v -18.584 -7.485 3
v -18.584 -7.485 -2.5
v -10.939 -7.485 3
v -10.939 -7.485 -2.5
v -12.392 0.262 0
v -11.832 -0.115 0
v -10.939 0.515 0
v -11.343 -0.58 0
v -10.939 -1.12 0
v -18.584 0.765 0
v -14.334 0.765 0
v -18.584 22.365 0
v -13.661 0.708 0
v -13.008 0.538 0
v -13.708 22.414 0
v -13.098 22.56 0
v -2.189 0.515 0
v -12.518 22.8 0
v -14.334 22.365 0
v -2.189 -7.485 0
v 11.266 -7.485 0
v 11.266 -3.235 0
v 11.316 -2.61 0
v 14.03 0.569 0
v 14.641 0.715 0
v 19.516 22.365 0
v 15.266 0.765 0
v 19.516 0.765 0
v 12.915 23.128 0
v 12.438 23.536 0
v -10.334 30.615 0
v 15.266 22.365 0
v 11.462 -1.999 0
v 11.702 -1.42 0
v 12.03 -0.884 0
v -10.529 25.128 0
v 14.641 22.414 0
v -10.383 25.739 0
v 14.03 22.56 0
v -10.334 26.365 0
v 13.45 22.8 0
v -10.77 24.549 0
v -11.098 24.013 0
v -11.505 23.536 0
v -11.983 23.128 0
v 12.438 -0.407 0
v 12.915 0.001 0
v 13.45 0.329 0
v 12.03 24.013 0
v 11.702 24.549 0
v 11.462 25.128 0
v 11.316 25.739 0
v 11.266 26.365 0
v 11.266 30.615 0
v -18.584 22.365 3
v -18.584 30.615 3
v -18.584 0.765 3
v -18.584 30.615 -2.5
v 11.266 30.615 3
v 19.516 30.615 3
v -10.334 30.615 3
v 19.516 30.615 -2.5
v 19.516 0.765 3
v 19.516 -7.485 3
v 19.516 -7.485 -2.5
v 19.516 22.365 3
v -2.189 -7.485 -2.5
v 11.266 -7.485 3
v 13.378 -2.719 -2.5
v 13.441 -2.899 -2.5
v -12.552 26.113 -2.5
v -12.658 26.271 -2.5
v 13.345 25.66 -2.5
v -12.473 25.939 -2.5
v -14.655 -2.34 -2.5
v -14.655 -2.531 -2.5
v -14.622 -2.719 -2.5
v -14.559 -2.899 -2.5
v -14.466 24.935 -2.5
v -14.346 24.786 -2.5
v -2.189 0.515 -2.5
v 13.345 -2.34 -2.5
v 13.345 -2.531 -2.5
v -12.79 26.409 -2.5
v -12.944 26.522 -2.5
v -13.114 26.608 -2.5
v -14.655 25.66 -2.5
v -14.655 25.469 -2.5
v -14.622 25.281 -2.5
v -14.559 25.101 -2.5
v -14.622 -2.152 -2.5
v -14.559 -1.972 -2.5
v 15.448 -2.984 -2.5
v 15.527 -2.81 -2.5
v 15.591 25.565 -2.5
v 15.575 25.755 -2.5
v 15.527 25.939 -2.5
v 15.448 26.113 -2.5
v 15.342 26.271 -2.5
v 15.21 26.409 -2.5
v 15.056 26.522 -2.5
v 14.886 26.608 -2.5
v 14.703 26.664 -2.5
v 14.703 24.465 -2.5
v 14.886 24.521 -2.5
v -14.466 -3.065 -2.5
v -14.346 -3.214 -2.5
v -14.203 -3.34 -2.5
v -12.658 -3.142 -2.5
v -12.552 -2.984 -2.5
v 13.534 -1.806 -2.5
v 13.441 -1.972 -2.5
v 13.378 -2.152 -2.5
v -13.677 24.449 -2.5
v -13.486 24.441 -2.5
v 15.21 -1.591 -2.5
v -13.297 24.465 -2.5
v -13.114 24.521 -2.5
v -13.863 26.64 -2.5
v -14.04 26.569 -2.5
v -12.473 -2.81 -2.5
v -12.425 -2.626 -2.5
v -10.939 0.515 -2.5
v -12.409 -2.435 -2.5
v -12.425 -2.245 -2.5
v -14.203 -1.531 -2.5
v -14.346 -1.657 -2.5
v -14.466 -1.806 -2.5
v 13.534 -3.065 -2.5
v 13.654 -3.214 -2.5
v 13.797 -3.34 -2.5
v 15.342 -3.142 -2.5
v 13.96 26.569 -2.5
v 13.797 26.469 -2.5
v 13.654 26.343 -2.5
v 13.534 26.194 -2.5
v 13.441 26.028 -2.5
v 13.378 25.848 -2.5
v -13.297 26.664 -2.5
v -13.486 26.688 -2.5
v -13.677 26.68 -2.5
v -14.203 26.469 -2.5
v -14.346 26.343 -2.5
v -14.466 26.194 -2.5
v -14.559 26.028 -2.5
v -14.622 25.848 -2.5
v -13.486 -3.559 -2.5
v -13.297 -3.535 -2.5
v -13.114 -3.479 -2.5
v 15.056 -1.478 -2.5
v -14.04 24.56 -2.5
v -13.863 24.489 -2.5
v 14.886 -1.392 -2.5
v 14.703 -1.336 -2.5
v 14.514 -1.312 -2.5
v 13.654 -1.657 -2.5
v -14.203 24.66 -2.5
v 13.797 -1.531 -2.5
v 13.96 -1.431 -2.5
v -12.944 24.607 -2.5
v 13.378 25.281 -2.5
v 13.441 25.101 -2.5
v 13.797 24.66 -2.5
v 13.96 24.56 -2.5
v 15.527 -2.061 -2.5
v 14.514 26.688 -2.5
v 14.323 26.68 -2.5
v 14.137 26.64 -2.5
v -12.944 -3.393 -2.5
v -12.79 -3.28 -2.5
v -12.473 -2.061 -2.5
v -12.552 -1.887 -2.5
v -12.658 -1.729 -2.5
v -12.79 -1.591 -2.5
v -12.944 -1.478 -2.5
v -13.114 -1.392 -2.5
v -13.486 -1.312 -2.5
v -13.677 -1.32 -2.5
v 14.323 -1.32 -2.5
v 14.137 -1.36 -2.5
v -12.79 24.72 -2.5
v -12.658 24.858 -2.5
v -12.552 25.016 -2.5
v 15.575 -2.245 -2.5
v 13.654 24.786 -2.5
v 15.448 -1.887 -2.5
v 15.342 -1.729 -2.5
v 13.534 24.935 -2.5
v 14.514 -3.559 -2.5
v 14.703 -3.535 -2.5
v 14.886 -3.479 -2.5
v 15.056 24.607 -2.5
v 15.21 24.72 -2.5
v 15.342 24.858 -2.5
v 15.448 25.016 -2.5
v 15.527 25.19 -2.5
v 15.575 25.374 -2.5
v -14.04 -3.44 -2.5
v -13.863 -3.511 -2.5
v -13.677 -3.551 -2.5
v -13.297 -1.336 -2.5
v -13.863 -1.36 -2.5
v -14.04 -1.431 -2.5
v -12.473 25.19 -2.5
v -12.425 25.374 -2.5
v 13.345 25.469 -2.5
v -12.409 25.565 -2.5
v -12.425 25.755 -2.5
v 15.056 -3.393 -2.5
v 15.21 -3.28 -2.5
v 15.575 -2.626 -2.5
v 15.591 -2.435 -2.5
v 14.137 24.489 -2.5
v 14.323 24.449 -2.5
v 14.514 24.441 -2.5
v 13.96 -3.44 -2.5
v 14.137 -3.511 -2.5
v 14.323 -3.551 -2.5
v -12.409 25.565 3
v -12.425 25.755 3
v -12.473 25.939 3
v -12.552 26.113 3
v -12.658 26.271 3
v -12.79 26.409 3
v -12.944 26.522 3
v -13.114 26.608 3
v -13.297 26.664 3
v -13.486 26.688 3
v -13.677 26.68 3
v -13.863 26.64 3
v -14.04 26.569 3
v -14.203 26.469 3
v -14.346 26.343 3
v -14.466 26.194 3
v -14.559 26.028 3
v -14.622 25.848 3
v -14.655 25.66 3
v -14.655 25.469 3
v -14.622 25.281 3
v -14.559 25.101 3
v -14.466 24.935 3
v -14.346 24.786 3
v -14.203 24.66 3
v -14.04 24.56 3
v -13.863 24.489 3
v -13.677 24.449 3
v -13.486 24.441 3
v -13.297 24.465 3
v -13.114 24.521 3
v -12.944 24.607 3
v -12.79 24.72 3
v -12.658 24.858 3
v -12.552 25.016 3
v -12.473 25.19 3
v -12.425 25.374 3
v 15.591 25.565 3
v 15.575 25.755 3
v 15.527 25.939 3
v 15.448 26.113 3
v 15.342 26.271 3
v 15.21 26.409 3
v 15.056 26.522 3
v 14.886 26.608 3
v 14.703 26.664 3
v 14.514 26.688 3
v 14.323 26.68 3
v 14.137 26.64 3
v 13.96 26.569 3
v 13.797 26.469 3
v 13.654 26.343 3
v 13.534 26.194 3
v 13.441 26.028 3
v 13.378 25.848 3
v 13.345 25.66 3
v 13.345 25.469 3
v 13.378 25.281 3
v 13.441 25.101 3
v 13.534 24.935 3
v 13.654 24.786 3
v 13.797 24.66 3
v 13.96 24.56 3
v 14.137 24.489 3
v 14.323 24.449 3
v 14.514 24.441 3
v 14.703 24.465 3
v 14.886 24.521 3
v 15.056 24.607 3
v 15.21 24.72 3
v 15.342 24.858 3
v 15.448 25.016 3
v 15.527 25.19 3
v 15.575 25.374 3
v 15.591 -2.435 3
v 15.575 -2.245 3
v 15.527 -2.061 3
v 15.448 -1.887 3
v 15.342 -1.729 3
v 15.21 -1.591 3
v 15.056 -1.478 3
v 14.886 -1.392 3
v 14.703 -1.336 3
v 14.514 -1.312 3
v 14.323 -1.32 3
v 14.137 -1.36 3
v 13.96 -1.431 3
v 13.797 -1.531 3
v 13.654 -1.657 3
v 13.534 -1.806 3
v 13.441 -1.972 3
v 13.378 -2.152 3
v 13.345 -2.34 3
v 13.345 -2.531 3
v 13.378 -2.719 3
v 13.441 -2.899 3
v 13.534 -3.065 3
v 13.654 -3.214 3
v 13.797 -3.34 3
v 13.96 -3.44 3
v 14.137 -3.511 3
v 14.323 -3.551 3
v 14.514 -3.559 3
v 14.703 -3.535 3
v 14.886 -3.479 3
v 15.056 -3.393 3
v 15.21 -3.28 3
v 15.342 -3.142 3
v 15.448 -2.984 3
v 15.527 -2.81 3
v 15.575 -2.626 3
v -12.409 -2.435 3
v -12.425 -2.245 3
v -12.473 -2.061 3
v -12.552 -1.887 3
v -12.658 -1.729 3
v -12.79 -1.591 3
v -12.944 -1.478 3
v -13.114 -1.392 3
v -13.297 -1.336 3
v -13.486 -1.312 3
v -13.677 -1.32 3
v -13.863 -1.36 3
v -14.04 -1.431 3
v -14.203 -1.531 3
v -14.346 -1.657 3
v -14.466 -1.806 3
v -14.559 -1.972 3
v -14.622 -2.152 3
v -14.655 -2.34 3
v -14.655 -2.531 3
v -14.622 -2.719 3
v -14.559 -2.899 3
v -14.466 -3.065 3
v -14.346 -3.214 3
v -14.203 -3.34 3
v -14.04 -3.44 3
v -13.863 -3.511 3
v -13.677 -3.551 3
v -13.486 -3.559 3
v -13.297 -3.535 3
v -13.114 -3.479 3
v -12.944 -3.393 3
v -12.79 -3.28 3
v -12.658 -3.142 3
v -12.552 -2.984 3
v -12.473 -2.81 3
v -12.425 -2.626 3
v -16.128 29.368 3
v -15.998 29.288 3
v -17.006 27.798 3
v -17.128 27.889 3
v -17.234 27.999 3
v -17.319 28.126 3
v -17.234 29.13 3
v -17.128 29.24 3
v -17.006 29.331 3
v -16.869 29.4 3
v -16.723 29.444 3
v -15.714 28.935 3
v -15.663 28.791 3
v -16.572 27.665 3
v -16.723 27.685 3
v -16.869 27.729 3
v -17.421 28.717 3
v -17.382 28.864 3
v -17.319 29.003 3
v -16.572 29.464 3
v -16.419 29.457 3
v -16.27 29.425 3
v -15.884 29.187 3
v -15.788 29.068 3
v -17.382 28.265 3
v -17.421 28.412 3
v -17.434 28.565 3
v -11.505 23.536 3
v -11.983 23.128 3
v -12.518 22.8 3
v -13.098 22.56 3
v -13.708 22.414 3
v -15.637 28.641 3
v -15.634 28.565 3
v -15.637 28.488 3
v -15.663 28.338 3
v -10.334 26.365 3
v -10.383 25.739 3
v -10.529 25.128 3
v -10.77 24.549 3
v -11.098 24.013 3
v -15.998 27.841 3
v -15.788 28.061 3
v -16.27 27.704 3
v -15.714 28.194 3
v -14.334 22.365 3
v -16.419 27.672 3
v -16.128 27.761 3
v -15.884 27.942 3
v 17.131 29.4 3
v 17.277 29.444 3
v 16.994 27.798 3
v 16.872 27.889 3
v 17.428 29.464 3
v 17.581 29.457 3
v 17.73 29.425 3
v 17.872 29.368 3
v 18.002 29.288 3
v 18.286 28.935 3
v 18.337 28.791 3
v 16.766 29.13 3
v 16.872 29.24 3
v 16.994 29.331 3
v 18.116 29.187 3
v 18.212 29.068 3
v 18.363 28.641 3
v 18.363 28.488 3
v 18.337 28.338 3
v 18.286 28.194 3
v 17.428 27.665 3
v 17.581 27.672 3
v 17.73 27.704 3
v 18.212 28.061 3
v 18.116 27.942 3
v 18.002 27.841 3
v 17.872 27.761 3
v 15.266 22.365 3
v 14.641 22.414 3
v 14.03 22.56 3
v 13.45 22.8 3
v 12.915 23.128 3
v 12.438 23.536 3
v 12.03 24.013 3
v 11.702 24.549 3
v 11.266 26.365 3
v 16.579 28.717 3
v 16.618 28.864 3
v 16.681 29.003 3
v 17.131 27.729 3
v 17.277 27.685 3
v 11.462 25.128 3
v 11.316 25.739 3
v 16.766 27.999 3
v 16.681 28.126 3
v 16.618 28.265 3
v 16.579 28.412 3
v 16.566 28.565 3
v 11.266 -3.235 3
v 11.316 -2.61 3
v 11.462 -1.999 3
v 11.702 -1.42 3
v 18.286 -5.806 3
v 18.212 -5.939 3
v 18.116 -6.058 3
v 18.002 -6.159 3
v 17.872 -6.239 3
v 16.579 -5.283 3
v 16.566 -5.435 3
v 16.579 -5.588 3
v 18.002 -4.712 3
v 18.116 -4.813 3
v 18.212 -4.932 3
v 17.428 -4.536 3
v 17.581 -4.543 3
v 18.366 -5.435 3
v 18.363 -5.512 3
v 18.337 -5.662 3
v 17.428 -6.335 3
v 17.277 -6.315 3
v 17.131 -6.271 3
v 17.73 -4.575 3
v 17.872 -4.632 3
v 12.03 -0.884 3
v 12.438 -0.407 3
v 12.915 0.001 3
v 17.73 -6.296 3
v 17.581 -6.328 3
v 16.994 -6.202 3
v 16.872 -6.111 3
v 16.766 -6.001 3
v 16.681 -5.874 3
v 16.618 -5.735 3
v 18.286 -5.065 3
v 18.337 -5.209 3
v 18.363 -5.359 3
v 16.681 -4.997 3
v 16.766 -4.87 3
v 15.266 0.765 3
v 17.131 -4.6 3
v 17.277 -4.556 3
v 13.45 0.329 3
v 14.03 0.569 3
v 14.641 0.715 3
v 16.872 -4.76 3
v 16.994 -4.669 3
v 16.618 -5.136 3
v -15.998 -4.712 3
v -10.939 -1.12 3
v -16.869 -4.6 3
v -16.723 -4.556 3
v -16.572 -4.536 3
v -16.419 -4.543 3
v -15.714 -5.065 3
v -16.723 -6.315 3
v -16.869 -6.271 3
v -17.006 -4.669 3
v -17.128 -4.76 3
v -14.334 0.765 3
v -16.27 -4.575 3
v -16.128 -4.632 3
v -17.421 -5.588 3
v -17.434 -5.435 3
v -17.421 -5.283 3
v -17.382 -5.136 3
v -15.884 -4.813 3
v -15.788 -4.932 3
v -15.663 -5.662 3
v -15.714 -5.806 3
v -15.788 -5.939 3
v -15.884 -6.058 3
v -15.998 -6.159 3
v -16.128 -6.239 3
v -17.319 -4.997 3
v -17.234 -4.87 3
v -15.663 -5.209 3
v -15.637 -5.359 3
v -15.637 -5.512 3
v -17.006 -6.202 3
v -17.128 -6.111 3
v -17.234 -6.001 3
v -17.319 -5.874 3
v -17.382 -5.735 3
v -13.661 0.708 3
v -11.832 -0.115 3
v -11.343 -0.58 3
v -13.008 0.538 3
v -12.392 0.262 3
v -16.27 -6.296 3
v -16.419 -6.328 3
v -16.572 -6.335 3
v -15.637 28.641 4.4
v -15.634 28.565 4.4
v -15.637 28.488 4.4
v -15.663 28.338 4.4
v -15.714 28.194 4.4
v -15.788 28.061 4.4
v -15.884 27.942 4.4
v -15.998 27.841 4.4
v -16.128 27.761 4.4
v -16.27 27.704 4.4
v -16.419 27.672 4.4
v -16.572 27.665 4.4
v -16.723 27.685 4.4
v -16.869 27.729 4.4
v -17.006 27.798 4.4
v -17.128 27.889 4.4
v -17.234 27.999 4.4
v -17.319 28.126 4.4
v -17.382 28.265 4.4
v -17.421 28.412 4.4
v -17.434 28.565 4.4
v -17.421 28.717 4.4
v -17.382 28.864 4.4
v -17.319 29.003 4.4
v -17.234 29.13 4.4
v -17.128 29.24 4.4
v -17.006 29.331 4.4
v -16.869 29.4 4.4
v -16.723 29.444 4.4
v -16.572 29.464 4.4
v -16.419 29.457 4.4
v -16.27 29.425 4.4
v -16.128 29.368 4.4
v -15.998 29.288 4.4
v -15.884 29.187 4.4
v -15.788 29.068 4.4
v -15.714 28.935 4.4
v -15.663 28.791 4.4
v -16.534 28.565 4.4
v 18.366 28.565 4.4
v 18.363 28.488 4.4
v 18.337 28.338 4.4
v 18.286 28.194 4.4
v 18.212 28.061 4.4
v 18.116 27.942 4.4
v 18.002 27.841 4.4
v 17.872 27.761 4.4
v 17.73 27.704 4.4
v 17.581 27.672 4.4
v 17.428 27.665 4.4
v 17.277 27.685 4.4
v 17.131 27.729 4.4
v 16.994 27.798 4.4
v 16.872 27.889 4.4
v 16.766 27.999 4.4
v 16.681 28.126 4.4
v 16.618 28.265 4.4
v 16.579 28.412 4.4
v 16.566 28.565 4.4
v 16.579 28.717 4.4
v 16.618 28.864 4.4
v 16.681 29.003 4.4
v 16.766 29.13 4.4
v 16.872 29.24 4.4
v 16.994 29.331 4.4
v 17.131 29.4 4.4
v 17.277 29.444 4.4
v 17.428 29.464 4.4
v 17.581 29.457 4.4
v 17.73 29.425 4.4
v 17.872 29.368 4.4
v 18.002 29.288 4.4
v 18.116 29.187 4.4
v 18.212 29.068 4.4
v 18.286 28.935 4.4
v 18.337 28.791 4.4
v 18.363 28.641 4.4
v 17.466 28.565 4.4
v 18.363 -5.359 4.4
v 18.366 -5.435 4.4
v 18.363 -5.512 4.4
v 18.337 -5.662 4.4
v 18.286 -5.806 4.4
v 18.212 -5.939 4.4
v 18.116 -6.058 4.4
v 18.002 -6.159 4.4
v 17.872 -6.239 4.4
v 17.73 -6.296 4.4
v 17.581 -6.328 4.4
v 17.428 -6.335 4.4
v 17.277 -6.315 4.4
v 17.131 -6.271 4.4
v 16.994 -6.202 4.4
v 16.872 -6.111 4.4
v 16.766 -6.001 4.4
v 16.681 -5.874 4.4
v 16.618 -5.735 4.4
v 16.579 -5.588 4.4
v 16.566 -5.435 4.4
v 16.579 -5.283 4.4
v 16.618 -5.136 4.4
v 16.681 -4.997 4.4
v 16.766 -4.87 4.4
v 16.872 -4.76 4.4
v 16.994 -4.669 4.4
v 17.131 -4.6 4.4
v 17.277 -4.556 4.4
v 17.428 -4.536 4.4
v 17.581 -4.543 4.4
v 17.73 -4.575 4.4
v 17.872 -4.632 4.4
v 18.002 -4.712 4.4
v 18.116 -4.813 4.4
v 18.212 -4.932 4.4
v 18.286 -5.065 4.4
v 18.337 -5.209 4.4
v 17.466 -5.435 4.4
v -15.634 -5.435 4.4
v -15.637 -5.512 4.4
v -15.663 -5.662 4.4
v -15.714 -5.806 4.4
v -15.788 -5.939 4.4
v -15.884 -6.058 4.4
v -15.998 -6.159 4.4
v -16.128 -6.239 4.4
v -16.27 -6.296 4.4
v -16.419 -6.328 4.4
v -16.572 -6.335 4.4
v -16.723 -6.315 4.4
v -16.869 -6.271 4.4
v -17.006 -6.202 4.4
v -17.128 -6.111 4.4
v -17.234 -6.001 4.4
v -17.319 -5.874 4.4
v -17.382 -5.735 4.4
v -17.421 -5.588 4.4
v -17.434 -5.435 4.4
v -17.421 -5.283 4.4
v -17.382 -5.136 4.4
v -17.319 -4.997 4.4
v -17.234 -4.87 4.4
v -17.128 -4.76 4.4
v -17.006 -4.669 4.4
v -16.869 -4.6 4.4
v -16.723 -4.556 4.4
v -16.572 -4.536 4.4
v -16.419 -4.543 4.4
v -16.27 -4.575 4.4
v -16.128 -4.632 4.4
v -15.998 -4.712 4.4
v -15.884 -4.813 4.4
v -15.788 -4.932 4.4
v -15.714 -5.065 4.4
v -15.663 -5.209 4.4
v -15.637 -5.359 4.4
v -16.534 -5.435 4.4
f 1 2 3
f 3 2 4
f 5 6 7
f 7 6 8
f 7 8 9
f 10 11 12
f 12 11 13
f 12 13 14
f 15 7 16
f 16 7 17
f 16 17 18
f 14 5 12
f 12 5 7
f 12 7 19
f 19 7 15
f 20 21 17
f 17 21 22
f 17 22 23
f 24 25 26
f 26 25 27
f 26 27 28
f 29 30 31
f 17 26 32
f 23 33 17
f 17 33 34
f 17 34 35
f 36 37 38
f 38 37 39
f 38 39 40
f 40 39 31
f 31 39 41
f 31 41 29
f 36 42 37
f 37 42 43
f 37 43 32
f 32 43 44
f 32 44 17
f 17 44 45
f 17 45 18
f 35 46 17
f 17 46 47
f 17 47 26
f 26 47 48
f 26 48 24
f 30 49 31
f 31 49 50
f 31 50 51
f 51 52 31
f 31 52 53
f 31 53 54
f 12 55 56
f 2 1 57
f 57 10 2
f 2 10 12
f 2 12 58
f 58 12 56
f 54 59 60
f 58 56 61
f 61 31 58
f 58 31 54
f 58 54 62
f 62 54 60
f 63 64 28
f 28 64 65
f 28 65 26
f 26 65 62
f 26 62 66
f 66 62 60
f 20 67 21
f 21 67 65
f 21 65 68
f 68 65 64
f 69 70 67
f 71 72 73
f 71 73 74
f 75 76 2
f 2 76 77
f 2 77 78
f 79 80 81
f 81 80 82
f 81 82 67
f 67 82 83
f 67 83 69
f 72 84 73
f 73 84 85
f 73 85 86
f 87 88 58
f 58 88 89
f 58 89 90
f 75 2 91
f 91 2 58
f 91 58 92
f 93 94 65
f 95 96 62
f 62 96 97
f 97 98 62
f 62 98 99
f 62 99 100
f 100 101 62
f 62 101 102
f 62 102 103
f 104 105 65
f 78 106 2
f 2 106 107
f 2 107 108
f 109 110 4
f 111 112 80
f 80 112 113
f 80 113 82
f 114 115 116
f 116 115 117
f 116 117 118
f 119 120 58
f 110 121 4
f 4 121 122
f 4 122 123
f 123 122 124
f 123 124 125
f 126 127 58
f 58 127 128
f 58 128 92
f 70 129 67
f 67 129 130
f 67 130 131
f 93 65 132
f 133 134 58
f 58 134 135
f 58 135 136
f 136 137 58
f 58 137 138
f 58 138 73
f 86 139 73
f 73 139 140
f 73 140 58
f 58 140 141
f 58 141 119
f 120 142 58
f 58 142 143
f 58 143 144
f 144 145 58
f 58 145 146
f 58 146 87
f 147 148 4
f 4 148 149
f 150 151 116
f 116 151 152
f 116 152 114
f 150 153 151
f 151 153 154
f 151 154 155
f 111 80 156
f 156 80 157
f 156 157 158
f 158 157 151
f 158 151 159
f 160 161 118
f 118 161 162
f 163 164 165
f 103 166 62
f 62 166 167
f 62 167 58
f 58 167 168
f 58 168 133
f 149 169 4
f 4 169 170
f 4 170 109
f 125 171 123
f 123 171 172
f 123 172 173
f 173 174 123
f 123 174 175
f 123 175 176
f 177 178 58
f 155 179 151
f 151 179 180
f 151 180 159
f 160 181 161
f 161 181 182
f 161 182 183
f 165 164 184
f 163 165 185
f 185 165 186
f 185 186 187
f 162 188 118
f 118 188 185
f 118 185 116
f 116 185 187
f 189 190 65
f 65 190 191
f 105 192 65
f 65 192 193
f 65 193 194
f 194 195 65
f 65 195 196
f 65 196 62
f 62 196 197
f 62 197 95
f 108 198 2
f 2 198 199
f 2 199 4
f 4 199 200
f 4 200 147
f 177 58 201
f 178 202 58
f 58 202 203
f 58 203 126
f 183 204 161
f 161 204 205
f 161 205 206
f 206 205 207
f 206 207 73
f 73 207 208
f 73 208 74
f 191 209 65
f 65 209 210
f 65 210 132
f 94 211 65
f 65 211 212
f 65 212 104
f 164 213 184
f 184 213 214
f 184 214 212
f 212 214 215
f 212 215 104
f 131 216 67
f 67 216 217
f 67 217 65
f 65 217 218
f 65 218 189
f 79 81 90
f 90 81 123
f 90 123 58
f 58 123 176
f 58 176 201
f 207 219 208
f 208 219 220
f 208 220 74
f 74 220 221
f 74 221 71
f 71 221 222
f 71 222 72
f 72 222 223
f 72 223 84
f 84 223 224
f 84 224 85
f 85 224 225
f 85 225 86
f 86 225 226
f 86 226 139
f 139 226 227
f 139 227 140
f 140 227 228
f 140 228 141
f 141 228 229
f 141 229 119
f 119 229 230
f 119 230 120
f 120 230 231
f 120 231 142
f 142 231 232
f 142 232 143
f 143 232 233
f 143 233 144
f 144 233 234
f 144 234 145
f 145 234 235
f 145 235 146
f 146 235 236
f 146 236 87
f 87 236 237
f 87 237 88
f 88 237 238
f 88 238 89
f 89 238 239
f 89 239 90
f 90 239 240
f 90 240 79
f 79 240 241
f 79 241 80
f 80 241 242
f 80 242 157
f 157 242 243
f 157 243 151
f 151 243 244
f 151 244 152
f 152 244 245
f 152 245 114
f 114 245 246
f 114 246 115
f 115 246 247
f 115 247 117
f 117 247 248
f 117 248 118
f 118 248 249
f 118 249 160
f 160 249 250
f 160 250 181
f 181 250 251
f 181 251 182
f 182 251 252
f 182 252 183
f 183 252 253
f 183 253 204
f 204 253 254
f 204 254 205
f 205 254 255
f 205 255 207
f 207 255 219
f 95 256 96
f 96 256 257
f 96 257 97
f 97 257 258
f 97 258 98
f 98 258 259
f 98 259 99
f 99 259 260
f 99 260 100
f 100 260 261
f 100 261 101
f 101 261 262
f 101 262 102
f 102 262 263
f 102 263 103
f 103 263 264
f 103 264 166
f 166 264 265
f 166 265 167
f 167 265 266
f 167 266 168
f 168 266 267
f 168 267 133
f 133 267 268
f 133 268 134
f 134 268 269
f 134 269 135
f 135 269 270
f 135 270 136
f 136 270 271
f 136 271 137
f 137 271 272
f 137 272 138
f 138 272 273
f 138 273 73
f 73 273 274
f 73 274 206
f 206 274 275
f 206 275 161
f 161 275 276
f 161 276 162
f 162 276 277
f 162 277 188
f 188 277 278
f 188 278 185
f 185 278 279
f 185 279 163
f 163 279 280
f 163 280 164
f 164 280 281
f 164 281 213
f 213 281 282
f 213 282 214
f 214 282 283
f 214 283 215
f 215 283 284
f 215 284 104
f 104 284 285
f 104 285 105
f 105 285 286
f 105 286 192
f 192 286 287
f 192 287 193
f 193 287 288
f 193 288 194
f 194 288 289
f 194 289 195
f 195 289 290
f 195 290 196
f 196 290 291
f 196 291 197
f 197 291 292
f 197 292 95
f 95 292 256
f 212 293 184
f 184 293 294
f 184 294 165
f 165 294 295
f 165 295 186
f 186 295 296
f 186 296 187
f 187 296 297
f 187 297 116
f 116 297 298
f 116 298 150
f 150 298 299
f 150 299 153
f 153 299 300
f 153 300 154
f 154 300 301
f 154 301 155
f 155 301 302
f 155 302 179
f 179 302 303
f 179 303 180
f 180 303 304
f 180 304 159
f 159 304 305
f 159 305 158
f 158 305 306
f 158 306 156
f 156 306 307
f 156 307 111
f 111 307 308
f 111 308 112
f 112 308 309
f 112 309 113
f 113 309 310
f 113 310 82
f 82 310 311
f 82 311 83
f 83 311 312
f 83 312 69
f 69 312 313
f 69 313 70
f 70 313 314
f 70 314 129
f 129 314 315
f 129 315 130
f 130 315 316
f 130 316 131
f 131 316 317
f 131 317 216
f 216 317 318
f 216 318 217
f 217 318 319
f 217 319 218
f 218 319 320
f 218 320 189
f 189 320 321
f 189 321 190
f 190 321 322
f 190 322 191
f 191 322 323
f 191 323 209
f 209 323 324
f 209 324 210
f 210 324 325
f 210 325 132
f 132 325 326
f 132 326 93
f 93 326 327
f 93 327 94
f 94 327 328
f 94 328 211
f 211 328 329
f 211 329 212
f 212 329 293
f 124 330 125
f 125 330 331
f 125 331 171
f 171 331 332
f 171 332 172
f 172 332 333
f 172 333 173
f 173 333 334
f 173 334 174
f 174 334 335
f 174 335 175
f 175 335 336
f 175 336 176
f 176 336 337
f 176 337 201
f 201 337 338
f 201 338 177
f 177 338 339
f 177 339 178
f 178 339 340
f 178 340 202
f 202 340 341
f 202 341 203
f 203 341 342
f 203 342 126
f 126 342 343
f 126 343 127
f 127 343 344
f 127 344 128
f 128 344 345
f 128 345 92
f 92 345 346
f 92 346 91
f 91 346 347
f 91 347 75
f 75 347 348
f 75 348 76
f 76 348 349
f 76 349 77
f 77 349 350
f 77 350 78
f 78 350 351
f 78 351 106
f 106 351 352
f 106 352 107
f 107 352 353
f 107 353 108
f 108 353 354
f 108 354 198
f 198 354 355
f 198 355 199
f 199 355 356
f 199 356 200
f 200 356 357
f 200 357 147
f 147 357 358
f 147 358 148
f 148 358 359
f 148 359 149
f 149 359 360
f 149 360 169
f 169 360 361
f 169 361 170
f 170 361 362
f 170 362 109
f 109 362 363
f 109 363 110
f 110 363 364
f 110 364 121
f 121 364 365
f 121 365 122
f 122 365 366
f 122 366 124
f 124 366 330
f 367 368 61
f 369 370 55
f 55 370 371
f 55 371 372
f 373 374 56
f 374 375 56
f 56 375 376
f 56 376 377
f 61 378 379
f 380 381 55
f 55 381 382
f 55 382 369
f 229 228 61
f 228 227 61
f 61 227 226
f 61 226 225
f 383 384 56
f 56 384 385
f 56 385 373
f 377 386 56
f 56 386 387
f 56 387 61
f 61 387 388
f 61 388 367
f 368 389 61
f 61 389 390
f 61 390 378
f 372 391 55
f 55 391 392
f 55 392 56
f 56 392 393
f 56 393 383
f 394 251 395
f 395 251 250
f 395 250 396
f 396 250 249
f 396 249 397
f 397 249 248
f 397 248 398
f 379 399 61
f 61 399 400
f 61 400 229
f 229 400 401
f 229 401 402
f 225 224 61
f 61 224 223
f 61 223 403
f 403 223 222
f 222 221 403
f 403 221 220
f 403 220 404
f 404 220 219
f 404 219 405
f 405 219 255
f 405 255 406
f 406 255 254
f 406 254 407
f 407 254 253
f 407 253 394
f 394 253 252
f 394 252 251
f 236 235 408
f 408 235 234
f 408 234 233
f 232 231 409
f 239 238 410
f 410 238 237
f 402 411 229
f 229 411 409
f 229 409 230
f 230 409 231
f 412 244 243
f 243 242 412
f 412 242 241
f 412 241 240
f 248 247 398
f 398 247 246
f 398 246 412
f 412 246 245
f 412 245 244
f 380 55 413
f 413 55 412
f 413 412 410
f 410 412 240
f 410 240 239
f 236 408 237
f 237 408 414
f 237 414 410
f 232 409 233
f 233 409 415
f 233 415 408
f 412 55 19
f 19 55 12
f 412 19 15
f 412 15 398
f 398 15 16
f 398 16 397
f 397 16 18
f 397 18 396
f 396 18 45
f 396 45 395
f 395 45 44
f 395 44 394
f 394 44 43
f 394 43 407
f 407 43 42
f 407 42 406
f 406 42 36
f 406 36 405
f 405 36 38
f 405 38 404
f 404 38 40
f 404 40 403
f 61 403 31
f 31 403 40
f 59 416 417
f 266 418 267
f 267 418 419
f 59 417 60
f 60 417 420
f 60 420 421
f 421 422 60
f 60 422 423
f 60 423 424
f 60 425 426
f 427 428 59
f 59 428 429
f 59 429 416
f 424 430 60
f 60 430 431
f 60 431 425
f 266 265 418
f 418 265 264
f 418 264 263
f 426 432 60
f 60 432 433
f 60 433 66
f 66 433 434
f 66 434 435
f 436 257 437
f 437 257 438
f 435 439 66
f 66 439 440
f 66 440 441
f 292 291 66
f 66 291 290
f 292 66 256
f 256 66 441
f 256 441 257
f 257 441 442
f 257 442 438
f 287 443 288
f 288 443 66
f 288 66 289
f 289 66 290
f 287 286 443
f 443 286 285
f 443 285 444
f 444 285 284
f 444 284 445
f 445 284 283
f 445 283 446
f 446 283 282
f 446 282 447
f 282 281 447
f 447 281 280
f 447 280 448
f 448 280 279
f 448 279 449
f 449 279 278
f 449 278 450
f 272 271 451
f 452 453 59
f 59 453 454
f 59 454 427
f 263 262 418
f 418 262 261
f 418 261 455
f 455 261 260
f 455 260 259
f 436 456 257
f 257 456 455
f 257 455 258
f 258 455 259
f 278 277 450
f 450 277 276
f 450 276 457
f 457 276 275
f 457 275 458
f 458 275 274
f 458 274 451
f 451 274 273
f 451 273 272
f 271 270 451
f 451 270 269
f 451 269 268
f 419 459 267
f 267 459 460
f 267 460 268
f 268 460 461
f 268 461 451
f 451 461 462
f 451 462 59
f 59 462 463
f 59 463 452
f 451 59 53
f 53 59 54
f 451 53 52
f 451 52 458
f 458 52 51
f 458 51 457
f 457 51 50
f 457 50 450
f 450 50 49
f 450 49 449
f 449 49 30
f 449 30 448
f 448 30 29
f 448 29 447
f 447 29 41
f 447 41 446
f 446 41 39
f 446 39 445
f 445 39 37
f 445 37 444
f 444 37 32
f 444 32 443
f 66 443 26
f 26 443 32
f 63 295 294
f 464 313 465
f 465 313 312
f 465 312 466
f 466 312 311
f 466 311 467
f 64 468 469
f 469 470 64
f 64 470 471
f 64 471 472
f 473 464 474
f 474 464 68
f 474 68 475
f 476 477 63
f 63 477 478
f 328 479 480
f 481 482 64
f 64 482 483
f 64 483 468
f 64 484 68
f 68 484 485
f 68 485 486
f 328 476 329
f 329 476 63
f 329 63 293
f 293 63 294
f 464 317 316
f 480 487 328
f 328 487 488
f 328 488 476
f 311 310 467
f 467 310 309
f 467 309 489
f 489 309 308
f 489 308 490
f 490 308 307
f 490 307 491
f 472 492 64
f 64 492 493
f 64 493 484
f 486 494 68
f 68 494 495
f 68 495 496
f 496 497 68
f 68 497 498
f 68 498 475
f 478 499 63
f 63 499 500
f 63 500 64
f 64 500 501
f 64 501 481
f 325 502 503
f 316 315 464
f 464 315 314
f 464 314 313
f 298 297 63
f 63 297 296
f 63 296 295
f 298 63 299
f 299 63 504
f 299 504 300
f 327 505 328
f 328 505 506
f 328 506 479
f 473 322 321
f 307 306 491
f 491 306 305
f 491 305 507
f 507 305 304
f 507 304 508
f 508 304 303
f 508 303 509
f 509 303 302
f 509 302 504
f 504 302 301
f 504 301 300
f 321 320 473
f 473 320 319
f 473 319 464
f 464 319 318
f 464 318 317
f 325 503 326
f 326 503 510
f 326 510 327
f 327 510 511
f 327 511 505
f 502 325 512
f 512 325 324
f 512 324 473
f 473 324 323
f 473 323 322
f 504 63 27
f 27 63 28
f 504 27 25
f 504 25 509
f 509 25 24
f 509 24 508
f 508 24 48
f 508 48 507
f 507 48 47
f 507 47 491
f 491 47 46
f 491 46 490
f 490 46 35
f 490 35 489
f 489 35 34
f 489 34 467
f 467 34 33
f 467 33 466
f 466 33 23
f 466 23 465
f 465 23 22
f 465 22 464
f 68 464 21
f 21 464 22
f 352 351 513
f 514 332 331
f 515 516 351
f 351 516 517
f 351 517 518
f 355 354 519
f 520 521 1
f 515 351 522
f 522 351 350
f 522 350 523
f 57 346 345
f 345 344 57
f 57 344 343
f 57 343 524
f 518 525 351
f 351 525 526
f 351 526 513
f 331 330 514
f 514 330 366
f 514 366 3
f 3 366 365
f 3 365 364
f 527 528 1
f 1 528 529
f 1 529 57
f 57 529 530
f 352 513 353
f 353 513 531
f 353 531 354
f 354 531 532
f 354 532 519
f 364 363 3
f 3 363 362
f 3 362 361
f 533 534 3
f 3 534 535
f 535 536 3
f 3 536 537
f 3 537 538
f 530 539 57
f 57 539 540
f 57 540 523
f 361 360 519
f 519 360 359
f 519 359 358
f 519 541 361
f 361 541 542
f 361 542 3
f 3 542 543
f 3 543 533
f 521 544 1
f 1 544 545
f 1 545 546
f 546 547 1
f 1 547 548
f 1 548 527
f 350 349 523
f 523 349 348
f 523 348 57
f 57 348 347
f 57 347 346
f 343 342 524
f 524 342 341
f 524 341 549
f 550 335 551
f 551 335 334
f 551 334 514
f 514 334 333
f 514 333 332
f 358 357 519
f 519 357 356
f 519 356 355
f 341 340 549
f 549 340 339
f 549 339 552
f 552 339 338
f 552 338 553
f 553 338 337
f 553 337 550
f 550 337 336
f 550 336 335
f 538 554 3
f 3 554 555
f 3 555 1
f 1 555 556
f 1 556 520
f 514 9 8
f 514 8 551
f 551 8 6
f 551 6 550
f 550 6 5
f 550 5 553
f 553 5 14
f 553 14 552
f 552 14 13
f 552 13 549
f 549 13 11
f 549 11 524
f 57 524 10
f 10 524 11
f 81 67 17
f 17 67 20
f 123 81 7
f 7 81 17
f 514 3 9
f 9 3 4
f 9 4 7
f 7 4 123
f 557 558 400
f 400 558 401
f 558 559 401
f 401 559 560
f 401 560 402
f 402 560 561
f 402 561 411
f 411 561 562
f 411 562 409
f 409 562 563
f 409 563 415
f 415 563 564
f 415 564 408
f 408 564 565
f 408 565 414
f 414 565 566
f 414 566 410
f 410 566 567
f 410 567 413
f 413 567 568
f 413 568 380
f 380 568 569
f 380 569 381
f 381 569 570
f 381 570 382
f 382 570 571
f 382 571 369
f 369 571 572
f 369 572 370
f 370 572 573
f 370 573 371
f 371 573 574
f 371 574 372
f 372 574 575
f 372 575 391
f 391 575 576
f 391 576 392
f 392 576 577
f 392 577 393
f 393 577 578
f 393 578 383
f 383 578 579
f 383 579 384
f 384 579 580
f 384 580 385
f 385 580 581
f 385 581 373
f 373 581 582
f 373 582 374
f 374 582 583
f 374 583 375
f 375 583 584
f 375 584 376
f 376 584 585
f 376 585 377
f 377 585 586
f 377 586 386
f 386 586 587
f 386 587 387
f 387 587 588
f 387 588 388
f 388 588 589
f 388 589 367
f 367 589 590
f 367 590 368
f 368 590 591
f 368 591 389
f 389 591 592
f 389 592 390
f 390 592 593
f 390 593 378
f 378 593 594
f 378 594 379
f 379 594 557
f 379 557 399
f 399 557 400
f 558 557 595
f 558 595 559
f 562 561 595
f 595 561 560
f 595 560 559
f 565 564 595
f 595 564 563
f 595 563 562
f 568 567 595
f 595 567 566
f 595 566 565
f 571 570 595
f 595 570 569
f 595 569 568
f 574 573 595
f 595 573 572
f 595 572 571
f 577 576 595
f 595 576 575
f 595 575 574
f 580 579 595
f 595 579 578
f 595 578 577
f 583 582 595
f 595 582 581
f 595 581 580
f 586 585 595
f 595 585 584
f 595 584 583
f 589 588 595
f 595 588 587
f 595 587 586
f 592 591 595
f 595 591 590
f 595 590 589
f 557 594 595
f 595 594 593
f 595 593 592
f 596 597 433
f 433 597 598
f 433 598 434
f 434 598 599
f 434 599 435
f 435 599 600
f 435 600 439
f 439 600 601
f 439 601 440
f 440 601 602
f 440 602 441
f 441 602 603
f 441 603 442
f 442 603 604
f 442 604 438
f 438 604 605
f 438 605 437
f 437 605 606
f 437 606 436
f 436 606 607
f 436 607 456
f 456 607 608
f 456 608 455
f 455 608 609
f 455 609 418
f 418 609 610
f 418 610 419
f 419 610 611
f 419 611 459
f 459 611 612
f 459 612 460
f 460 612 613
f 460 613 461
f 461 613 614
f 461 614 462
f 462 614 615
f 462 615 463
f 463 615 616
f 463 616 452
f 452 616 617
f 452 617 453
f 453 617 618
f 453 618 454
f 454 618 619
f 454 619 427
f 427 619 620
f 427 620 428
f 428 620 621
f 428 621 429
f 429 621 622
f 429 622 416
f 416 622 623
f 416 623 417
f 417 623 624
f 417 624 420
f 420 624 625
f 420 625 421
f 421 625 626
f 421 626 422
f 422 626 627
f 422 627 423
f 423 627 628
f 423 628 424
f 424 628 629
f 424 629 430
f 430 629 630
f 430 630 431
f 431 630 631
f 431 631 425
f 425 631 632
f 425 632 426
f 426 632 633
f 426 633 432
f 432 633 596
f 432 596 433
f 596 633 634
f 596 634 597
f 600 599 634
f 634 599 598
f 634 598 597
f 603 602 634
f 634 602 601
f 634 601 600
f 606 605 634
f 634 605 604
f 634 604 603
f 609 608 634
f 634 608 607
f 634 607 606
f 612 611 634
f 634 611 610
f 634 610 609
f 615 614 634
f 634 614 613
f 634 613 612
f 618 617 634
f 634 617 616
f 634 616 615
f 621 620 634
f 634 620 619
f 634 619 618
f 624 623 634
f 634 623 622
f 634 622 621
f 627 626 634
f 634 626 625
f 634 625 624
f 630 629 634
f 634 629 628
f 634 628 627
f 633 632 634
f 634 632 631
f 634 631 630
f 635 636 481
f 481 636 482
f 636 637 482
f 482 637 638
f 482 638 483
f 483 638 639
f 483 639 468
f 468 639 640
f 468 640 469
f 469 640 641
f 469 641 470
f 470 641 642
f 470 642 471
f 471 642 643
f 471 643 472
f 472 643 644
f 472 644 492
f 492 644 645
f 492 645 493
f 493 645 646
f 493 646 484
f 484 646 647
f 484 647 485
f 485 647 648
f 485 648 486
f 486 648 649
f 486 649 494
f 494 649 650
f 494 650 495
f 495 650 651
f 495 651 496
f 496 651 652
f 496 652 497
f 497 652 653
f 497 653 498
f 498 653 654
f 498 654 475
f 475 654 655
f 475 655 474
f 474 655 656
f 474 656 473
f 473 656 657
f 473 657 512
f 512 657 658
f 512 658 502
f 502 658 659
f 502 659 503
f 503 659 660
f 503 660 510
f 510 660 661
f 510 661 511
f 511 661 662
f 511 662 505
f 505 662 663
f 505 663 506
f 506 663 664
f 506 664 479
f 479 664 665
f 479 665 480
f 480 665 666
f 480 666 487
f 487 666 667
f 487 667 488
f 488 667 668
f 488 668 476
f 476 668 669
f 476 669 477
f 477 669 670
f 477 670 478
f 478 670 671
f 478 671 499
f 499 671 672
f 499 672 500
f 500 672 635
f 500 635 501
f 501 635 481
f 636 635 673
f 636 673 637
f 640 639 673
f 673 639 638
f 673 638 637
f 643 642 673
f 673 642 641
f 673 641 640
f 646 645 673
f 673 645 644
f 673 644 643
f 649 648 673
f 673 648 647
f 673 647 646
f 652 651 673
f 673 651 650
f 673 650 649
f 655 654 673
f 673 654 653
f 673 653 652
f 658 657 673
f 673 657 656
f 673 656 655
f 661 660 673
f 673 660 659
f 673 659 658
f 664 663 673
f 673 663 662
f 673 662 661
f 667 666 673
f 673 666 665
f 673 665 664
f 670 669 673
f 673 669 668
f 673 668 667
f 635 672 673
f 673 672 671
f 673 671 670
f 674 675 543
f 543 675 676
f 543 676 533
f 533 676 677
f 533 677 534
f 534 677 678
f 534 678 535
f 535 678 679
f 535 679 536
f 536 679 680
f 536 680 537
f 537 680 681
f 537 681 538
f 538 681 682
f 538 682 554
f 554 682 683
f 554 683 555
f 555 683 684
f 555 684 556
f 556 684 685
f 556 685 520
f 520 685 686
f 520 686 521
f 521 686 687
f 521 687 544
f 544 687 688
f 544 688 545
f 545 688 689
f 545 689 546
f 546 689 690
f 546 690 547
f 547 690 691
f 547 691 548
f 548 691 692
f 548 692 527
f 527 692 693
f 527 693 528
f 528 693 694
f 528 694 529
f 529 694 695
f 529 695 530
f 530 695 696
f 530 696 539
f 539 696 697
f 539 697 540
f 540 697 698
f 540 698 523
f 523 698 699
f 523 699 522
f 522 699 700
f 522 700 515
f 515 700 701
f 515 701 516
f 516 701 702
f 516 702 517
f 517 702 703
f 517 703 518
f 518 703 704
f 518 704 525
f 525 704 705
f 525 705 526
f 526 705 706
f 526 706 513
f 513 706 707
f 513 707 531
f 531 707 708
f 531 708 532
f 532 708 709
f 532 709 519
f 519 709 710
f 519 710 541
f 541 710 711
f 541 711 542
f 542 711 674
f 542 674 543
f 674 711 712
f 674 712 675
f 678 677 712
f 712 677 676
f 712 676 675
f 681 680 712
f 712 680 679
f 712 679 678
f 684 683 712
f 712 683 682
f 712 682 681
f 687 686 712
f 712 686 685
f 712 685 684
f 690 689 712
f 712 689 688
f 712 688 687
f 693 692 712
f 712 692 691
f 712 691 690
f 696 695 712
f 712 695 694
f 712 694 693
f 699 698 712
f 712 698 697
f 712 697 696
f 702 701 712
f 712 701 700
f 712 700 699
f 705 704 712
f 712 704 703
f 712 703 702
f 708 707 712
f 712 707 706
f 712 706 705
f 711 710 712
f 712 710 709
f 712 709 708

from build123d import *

# Parameters (mm, degrees)
SKETCH3_W           = 38.1
SKETCH3_H           = 38.1
SKETCH3_R           = 1.125
BOSS_EXTRUDE1_DEPTH = 2.5
BOSS_EXTRUDE2_START = 3
SKETCH2_R           = 1.125
BOSS_EXTRUDE2_DEPTH = 3
SKETCH4_W           = 8.75
SKETCH4_H           = 5.25
CUT_EXTRUDE1_DEPTH  = 10
SKETCH6_W           = 8.75
SKETCH6_H           = 2.75
CUT_EXTRUDE2_DEPTH  = 10
SKETCH7_R           = 0.9
BOSS_EXTRUDE3_DEPTH = 1.4


with BuildPart() as part:
    # Sketch3 → Boss-Extrude1 (new body)
    with BuildSketch(Plane.XY):
        with Locations((0.466348003, 11.564505911)):
            Rectangle(SKETCH3_W, SKETCH3_H)
        with Locations((-13.533651997, 25.564505911)):
            Circle(SKETCH3_R, mode=Mode.SUBTRACT)
        with Locations((14.466348003, 25.564505911)):
            Circle(SKETCH3_R, mode=Mode.SUBTRACT)
        with Locations((14.466348003, -2.435494089)):
            Circle(SKETCH3_R, mode=Mode.SUBTRACT)
        with Locations((-13.533651997, -2.435494089)):
            Circle(SKETCH3_R, mode=Mode.SUBTRACT)
    extrude(amount=-BOSS_EXTRUDE1_DEPTH)

    # Sketch2 → Boss-Extrude2 (add)
    # profile 1 of 4: a face of its own
    with BuildSketch(Plane.XY.offset(BOSS_EXTRUDE2_START)):
        with BuildLine():
            Line((-18.583651997, 30.614505911), (-10.333651997, 30.614505911))
            Line((-10.333651997, 30.614505911), (-10.333651997, 26.364505911))
            ThreePointArc((-10.333651997, 26.364505911), (-11.505224872, 23.536078787), (-14.333651997, 22.364505911))
            Line((-14.333651997, 22.364505911), (-18.583651997, 22.364505911))
            Line((-18.583651997, 22.364505911), (-18.583651997, 30.614505911))
        make_face()
        with Locations((-13.533651997, 25.564505911)):
            Circle(SKETCH2_R, mode=Mode.SUBTRACT)
    # profile 2 of 4: a face of its own
    with BuildSketch(Plane.XY.offset(BOSS_EXTRUDE2_START)):
        with BuildLine():
            Line((19.516348003, 30.614505911), (11.266348003, 30.614505911))
            Line((11.266348003, 30.614505911), (11.266348003, 26.364505911))
            ThreePointArc((11.266348003, 26.364505911), (12.437920878, 23.536078787), (15.266348003, 22.364505911))
            Line((15.266348003, 22.364505911), (19.516348003, 22.364505911))
            Line((19.516348003, 22.364505911), (19.516348003, 30.614505911))
        make_face()
        with Locations((14.466348003, 25.564505911)):
            Circle(SKETCH2_R, mode=Mode.SUBTRACT)
    # profile 3 of 4: a face of its own
    with BuildSketch(Plane.XY.offset(BOSS_EXTRUDE2_START)):
        with BuildLine():
            Line((19.516348003, -7.485494089), (11.266348003, -7.485494089))
            Line((11.266348003, -7.485494089), (11.266348003, -3.235494089))
            ThreePointArc((11.266348003, -3.235494089), (12.437920878, -0.407066964), (15.266348003, 0.764505911))
            Line((15.266348003, 0.764505911), (19.516348003, 0.764505911))
            Line((19.516348003, 0.764505911), (19.516348003, -7.485494089))
        make_face()
        with Locations((14.466348003, -2.435494089)):
            Circle(SKETCH2_R, mode=Mode.SUBTRACT)
    # profile 4 of 4: a face of its own
    with BuildSketch(Plane.XY.offset(BOSS_EXTRUDE2_START)):
        with BuildLine():
            Line((-18.583651997, -7.485494089), (-10.333651997, -7.485494089))
            Line((-10.333651997, -7.485494089), (-10.333651997, -3.235494089))
            ThreePointArc((-10.333651997, -3.235494089), (-11.505224872, -0.407066964), (-14.333651997, 0.764505911))
            Line((-14.333651997, 0.764505911), (-18.583651997, 0.764505911))
            Line((-18.583651997, 0.764505911), (-18.583651997, -7.485494089))
        make_face()
        with Locations((-13.533651997, -2.435494089)):
            Circle(SKETCH2_R, mode=Mode.SUBTRACT)
    extrude(amount=-BOSS_EXTRUDE2_DEPTH)

    # Sketch4 → Cut-Extrude1 (cut)
    with BuildSketch(Plane(origin=(0, 0, -2.5), x_dir=(-1, 0, 0), z_dir=(0, 0, -1))):
        with Locations((6.563651997, -2.110494089)):
            Rectangle(SKETCH4_W, SKETCH4_H)
    extrude(amount=-CUT_EXTRUDE1_DEPTH, mode=Mode.SUBTRACT)

    # Sketch6 → Cut-Extrude2 (cut)
    with BuildSketch(Plane(origin=(0, 0, -2.5), x_dir=(-1, 0, 0), z_dir=(0, 0, -1))):
        with Locations((6.563651997, -6.110494089)):
            Rectangle(SKETCH6_W, SKETCH6_H)
    extrude(amount=-CUT_EXTRUDE2_DEPTH, mode=Mode.SUBTRACT)

    # Sketch7 → Boss-Extrude3 (add)
    with BuildSketch(Plane.XY.offset(3)):
        with Locations((-16.533651997, 28.564505911)):
            Circle(SKETCH7_R)
        with Locations(Location((17.466348003, 28.564505911, 0), (0, 0, 180))):
            Circle(SKETCH7_R)
        with Locations((17.466348003, -5.435494089)):
            Circle(SKETCH7_R)
        with Locations(Location((-16.533651997, -5.435494089, 0), (0, 0, 180))):
            Circle(SKETCH7_R)
    extrude(amount=BOSS_EXTRUDE3_DEPTH)


solid = part.part
